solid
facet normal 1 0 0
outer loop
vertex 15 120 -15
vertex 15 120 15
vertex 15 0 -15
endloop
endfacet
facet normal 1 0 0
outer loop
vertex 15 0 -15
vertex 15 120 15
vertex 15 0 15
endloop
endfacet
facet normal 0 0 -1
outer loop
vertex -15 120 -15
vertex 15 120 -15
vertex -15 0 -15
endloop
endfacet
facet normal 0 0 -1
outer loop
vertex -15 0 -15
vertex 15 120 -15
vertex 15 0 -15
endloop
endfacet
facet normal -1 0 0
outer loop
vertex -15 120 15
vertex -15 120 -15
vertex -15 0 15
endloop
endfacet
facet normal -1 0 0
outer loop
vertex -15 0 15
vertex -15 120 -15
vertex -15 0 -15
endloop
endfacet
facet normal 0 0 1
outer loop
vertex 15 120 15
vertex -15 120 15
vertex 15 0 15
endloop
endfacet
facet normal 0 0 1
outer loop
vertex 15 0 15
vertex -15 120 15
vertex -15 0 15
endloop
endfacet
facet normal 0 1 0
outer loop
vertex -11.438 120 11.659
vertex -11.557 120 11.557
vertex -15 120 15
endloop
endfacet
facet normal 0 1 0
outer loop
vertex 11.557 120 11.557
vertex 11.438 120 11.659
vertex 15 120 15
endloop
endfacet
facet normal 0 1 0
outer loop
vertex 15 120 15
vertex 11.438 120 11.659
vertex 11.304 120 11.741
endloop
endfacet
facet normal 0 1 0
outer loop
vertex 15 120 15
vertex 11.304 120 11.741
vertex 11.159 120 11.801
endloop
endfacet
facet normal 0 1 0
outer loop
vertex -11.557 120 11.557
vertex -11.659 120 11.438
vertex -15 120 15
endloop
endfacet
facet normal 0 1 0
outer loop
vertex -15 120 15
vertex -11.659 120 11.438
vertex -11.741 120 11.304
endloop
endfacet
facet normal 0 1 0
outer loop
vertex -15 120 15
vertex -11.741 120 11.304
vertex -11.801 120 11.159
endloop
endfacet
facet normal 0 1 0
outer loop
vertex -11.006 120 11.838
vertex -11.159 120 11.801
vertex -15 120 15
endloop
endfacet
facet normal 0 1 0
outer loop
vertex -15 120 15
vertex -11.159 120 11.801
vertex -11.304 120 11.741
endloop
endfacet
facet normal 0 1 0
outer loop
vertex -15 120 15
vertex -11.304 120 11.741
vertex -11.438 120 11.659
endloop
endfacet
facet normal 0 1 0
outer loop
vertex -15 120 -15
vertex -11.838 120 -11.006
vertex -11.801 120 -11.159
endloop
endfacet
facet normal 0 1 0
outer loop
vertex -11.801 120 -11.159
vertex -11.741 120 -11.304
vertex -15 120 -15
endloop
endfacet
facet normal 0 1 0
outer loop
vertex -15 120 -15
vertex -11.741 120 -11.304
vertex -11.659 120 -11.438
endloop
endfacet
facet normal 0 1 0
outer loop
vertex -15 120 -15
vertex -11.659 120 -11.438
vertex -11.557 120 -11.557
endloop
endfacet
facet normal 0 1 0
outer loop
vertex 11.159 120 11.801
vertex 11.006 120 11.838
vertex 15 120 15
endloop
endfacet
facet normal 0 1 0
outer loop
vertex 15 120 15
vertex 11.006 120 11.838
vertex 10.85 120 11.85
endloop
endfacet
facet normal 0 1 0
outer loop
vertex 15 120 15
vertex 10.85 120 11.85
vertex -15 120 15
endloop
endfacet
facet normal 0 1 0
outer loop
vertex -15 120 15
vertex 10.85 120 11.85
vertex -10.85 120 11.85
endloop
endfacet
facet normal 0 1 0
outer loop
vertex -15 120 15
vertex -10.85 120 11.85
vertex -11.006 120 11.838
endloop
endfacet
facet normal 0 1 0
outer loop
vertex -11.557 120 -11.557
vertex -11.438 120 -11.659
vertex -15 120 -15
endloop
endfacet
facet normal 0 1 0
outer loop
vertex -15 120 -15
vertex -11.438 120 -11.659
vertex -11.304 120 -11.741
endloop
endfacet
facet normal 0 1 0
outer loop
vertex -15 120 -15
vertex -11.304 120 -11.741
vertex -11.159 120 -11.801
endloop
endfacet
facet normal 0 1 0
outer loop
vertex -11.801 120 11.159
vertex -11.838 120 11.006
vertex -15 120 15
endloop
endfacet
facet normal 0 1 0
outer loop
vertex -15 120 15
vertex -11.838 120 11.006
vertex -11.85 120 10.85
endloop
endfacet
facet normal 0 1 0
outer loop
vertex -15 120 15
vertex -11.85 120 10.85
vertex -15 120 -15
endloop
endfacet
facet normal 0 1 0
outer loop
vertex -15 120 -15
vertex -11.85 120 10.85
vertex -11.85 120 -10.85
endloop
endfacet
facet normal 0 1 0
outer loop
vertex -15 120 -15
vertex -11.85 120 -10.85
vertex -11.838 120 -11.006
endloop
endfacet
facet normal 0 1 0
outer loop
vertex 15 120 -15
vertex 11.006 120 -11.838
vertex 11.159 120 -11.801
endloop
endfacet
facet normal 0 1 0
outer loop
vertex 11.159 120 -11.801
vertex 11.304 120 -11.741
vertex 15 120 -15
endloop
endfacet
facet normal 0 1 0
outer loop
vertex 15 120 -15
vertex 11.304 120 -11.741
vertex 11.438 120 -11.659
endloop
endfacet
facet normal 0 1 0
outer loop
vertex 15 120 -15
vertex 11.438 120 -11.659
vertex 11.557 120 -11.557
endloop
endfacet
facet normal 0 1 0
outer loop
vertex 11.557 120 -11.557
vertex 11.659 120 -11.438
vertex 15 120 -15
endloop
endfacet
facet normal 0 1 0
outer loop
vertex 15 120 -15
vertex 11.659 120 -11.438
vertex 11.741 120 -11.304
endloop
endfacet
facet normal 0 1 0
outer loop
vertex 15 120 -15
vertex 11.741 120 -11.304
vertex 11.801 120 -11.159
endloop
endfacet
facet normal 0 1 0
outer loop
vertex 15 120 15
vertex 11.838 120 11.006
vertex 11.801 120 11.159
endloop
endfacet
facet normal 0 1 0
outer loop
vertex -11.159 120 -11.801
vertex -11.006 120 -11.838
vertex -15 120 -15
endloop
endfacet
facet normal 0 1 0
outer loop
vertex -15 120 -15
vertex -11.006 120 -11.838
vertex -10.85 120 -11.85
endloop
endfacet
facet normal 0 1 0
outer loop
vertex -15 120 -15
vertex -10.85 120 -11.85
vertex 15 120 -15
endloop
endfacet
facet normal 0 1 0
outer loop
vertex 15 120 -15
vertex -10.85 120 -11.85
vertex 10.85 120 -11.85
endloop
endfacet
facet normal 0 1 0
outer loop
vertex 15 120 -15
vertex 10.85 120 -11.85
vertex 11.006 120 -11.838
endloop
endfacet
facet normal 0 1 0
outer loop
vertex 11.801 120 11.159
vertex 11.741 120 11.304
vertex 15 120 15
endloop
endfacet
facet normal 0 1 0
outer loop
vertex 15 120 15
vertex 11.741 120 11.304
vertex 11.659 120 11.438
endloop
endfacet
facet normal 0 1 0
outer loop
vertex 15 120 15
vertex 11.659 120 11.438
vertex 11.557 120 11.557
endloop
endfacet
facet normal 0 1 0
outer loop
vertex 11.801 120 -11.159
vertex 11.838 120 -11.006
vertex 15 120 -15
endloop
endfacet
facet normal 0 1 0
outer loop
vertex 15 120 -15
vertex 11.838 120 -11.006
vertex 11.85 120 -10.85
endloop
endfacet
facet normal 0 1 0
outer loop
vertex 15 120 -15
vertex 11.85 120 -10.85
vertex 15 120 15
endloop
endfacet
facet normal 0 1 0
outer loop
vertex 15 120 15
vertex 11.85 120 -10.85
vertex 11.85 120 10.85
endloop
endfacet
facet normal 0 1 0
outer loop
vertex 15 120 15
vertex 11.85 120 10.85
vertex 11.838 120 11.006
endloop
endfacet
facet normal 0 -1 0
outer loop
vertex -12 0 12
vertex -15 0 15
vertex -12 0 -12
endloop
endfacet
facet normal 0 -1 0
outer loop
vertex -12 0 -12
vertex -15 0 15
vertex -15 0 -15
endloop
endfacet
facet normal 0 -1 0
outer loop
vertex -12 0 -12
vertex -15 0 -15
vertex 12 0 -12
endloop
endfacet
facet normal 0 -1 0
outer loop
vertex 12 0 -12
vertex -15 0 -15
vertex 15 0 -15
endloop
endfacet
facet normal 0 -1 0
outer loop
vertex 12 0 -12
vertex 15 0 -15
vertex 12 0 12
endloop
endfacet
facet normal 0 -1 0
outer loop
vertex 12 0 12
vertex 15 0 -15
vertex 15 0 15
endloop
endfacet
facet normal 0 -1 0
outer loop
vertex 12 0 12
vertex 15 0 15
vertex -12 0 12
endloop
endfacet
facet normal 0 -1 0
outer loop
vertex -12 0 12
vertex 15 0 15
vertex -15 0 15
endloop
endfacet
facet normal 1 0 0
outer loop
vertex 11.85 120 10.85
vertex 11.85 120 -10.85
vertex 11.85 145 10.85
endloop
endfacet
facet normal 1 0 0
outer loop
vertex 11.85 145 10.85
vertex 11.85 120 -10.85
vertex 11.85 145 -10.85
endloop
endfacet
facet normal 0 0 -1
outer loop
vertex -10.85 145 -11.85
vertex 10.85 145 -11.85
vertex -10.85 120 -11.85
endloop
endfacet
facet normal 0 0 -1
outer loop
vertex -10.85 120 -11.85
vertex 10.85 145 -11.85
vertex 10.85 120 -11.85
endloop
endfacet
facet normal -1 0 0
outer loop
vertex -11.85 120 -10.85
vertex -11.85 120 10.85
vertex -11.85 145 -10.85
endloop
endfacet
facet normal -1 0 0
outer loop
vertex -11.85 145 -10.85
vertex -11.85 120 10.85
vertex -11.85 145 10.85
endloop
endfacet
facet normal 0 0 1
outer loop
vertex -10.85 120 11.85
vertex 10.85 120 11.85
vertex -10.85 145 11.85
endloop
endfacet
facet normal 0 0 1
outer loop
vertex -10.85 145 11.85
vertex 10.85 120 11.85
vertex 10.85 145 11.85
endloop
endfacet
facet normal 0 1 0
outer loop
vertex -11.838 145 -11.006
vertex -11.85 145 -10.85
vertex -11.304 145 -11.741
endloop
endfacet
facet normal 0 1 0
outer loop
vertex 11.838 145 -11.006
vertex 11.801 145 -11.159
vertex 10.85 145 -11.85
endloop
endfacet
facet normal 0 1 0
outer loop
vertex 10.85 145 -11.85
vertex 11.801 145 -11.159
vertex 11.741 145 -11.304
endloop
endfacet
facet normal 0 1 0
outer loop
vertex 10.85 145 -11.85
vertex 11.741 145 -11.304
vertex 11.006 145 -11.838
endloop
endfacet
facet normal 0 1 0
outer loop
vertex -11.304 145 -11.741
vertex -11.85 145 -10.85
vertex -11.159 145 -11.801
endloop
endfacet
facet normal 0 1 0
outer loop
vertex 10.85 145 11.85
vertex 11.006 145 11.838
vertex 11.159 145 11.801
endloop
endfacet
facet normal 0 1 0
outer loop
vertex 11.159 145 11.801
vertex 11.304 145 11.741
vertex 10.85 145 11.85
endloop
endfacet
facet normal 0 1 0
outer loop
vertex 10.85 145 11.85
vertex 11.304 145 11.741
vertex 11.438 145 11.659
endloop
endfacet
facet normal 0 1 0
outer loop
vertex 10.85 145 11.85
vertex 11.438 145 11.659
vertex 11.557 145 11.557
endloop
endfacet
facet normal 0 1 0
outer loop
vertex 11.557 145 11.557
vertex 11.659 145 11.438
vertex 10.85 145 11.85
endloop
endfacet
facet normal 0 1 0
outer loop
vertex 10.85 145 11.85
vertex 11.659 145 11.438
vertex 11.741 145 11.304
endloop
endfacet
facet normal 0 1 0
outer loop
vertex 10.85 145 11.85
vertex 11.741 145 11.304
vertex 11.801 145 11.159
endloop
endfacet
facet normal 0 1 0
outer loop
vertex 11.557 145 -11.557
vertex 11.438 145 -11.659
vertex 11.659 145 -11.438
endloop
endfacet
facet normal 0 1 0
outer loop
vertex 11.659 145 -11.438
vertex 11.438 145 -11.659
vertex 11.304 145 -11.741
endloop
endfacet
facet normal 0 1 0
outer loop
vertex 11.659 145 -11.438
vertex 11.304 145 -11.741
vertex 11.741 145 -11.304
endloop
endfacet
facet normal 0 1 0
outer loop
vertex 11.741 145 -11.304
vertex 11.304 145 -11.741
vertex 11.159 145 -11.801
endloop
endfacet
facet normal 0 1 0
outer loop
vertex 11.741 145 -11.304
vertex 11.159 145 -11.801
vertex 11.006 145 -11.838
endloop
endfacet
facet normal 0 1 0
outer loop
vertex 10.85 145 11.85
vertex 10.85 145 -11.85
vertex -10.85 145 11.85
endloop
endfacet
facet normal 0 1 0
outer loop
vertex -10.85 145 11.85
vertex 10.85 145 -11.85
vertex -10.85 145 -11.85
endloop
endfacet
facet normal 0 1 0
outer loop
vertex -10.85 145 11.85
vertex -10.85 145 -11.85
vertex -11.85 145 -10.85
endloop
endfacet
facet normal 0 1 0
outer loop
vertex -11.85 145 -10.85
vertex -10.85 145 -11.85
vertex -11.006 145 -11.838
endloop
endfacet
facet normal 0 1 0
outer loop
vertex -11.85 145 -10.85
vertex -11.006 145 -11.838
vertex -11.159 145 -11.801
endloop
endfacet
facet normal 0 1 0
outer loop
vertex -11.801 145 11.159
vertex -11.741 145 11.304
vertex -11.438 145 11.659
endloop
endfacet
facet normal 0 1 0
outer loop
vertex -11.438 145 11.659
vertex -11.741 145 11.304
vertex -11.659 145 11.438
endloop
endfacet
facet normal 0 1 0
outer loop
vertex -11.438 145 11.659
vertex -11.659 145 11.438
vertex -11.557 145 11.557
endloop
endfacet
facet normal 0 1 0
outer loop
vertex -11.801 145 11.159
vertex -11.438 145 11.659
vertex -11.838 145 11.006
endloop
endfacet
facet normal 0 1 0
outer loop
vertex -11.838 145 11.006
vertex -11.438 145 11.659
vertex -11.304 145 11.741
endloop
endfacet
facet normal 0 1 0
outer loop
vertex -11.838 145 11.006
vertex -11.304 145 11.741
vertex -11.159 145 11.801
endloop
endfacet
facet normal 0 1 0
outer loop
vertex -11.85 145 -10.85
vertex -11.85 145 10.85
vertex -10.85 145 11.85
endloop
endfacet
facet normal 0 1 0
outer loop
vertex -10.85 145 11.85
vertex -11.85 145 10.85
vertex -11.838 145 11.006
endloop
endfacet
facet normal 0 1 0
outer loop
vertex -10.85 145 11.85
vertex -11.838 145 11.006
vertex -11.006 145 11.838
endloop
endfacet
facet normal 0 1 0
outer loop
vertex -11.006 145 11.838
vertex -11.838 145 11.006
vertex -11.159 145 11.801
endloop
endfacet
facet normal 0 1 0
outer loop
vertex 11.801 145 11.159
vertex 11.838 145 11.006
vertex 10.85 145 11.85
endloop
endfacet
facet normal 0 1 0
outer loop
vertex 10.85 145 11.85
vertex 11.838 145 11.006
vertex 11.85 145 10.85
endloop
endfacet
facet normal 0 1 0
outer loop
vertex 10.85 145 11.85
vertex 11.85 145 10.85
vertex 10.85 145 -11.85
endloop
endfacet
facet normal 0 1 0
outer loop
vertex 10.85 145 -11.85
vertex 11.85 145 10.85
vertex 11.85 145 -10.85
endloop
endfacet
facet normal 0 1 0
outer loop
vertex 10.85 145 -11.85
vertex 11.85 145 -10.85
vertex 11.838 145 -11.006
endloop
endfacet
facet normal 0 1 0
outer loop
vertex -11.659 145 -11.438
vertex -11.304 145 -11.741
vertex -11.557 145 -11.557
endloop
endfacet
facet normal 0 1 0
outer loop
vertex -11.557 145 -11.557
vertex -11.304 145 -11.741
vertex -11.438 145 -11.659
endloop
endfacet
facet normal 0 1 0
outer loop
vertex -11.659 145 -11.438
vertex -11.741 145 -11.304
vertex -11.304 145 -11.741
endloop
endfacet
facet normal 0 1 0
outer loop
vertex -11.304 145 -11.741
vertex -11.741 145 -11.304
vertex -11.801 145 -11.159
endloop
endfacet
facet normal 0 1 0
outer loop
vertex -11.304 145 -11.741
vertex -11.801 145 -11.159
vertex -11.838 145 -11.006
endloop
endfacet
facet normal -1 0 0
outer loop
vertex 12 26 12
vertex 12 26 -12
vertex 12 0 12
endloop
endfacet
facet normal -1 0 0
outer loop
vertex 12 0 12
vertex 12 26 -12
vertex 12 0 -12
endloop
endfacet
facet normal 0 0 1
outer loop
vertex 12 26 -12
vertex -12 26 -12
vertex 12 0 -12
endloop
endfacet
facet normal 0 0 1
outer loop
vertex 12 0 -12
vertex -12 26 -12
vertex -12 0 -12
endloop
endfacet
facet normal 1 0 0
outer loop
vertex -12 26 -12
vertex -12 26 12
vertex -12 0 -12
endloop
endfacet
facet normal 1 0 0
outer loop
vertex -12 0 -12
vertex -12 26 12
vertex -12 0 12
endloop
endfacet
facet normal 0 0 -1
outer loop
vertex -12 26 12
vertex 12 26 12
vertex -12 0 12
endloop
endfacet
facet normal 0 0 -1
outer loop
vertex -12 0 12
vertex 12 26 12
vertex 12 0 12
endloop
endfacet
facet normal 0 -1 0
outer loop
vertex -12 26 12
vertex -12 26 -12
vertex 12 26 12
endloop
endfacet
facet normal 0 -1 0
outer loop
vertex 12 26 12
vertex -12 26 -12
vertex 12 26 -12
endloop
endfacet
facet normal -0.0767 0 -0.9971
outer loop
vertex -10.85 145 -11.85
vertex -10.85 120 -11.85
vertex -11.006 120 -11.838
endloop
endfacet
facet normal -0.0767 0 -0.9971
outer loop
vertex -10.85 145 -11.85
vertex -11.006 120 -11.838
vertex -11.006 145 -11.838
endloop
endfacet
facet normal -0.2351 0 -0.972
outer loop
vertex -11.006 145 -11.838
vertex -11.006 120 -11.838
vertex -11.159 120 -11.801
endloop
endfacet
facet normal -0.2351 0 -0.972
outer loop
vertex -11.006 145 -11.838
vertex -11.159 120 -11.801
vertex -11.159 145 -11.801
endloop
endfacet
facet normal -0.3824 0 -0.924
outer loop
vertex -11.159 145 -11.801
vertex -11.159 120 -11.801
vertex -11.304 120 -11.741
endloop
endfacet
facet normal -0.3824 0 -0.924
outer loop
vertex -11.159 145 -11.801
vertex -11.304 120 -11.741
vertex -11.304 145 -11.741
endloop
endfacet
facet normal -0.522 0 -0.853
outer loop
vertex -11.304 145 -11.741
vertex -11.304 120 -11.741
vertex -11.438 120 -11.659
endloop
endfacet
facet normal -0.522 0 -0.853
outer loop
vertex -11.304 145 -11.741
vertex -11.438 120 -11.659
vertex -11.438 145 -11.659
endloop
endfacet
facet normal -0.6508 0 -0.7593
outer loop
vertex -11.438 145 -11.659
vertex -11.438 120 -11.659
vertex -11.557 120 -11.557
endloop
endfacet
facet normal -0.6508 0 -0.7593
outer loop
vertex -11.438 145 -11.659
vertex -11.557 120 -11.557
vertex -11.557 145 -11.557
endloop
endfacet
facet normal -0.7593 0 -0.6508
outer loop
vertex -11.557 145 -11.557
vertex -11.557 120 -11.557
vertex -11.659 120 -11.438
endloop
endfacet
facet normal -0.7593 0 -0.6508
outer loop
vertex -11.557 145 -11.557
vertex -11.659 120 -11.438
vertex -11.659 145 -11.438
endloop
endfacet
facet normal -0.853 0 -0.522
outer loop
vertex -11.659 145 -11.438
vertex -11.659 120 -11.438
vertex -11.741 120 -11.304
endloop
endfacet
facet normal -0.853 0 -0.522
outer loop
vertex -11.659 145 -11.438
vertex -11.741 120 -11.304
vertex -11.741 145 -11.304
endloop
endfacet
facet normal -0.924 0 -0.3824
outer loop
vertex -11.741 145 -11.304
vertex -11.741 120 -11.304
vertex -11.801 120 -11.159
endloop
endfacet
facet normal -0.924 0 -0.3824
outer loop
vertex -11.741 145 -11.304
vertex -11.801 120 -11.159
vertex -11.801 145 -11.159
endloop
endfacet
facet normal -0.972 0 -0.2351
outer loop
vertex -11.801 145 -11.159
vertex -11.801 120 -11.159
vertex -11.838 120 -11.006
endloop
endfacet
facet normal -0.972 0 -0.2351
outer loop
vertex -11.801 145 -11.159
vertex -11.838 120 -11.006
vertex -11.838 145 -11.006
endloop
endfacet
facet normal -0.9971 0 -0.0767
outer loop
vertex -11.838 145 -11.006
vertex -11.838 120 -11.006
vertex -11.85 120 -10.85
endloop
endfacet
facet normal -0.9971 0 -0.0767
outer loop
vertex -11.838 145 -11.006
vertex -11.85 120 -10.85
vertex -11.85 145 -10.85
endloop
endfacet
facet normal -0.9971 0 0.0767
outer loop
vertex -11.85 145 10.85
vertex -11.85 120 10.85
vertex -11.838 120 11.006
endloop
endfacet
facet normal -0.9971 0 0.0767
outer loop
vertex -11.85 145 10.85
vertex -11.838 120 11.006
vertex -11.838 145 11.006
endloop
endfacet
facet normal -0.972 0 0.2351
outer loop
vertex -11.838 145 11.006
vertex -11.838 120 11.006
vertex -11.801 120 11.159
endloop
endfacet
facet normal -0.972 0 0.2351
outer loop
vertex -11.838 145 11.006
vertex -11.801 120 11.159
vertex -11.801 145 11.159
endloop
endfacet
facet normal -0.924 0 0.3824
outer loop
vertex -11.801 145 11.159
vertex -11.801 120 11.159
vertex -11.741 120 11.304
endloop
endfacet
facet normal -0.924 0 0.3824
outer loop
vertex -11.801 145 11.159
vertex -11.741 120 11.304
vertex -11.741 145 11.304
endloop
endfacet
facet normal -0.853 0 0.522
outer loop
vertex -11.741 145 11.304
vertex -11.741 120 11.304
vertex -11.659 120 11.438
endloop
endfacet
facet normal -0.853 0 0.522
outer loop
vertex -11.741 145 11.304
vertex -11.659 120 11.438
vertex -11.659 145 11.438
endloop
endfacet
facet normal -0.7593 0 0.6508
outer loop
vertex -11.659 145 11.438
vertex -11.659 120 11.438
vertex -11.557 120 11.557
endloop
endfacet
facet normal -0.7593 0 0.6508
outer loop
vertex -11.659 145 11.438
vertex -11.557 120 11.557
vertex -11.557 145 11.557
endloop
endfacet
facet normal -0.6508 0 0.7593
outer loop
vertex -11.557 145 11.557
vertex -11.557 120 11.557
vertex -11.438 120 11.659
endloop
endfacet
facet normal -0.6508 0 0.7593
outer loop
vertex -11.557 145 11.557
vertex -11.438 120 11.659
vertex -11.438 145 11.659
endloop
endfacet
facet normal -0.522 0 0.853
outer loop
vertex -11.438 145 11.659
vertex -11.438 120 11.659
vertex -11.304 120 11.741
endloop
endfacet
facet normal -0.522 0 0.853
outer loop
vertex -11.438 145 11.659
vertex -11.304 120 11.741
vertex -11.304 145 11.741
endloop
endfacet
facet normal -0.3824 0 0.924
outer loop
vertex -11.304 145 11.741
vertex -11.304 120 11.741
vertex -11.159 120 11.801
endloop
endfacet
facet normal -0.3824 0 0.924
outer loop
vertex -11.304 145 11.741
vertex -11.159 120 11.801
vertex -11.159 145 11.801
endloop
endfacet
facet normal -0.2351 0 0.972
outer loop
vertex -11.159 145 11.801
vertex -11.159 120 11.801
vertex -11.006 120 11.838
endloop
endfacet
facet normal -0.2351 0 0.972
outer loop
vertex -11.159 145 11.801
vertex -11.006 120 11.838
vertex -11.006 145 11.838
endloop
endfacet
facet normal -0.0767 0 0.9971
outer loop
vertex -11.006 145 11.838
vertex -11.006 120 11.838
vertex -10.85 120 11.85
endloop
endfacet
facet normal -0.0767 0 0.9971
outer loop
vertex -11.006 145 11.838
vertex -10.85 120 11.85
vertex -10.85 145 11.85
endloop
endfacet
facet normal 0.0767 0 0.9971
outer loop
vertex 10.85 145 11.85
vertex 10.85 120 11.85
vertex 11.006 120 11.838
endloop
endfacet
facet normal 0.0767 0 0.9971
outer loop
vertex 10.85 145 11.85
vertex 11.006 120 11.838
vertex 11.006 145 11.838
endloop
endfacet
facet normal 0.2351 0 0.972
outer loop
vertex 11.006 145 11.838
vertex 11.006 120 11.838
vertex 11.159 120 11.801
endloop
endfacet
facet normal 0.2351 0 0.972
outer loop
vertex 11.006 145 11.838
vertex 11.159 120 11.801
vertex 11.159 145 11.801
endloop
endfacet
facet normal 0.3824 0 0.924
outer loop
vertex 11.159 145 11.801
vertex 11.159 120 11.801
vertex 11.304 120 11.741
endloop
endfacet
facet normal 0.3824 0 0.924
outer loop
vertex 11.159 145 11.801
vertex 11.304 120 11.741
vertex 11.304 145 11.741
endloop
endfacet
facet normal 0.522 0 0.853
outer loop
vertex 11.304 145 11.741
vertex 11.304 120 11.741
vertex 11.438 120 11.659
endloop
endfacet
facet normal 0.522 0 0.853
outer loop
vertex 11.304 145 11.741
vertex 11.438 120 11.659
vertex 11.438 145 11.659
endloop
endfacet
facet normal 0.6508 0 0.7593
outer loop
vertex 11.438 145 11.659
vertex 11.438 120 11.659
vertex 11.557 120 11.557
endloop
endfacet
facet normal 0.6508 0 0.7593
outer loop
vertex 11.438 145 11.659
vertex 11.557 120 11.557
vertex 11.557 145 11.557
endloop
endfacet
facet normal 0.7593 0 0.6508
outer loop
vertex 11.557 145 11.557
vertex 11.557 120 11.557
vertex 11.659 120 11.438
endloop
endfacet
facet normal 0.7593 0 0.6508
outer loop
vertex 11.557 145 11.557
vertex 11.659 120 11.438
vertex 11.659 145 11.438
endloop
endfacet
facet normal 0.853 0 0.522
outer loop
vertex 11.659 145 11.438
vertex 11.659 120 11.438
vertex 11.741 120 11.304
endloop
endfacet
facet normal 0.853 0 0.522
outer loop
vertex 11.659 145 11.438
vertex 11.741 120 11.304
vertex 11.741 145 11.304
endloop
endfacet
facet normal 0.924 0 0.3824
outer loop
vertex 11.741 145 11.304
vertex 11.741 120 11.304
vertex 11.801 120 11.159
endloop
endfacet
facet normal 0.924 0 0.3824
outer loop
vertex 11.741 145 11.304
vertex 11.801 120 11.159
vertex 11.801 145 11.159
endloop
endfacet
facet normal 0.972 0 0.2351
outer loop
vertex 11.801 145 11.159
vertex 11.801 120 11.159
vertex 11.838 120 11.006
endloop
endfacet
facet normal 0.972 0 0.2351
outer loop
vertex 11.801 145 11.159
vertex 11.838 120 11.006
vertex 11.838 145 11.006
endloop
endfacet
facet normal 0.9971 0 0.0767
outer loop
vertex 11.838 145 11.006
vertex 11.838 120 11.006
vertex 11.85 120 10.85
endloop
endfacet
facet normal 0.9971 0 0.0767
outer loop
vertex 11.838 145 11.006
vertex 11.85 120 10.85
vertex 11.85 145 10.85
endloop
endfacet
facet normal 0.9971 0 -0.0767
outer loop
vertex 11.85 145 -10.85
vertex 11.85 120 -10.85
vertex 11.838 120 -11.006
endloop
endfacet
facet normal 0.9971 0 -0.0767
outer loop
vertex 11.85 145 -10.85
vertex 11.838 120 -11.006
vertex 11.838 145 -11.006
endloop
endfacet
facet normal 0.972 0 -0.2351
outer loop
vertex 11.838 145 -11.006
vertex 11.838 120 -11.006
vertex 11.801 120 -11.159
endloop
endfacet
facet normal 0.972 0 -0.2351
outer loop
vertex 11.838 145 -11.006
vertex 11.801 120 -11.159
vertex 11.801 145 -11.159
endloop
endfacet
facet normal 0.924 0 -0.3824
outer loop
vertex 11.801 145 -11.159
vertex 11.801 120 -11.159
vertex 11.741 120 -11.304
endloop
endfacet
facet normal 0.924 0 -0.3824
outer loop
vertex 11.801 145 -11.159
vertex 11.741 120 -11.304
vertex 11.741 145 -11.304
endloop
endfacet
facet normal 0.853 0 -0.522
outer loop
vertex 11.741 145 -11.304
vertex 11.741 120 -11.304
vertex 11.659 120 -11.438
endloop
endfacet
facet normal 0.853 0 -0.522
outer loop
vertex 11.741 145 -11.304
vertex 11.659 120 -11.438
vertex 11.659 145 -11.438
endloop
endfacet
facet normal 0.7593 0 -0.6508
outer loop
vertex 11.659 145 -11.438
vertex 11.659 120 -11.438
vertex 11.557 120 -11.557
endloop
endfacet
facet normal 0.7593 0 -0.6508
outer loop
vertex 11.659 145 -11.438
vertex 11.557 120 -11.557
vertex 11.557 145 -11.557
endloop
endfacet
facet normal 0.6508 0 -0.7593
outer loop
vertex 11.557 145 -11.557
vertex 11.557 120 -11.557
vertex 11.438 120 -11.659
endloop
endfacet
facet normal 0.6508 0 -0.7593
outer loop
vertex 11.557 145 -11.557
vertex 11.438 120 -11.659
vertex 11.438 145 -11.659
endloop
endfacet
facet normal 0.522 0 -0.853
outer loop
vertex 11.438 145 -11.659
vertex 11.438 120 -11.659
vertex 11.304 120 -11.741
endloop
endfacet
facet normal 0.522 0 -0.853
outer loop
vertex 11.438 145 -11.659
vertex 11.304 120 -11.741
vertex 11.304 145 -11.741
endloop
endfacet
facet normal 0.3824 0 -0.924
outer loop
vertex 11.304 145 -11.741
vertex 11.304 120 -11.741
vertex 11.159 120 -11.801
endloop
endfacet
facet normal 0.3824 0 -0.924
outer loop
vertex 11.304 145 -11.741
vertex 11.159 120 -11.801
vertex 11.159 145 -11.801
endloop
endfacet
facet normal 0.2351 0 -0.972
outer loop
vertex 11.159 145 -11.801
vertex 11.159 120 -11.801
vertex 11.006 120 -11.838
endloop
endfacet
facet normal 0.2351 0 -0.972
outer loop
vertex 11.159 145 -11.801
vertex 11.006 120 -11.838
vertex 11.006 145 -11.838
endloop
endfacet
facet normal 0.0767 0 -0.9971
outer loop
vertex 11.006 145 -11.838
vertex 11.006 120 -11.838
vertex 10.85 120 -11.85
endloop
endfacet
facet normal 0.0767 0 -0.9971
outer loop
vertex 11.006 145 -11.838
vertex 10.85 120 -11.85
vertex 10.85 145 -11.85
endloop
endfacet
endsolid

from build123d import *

# Parameters (mm, degrees)
SKETCH1_W           = 30
SKETCH1_H           = 30
BOSS_EXTRUDE1_DEPTH = 120
SKETCH2_W           = 23.7
SKETCH2_H           = 23.7
BOSS_EXTRUDE2_DEPTH = 25
SKETCH3_W           = 24
SKETCH3_H           = 24
CUT_EXTRUDE1_DEPTH  = 26
FILLET1_R           = 1


with BuildPart() as part:
    # Sketch1 → Boss-Extrude1 (new body)
    with BuildSketch(Plane(origin=(0, 0, 0), x_dir=(1, 0, 0), z_dir=(0, 1, 0))):
        Rectangle(SKETCH1_W, SKETCH1_H)
    extrude(amount=BOSS_EXTRUDE1_DEPTH)

    # Sketch2 → Boss-Extrude2 (add)
    with BuildSketch(Plane(origin=(0, 120, 0), x_dir=(1, 0, 0), z_dir=(0, 1, 0))):
        Rectangle(SKETCH2_W, SKETCH2_H)
    extrude(amount=BOSS_EXTRUDE2_DEPTH)

    # Sketch3 → Cut-Extrude1 (cut)
    with BuildSketch(Plane.XZ):
        Rectangle(SKETCH3_W, SKETCH3_H)
    extrude(amount=-CUT_EXTRUDE1_DEPTH, mode=Mode.SUBTRACT)

    # Fillet1
    fillet1_edges = [part.edges().sort_by_distance(p)[0] for p in [
        (11.85, 132.5, 11.85),
        (11.85, 132.5, -11.85),
        (-11.85, 132.5, -11.85),
        (-11.85, 132.5, 11.85),
    ]]
    fillet(fillet1_edges, radius=FILLET1_R)


solid = part.part
